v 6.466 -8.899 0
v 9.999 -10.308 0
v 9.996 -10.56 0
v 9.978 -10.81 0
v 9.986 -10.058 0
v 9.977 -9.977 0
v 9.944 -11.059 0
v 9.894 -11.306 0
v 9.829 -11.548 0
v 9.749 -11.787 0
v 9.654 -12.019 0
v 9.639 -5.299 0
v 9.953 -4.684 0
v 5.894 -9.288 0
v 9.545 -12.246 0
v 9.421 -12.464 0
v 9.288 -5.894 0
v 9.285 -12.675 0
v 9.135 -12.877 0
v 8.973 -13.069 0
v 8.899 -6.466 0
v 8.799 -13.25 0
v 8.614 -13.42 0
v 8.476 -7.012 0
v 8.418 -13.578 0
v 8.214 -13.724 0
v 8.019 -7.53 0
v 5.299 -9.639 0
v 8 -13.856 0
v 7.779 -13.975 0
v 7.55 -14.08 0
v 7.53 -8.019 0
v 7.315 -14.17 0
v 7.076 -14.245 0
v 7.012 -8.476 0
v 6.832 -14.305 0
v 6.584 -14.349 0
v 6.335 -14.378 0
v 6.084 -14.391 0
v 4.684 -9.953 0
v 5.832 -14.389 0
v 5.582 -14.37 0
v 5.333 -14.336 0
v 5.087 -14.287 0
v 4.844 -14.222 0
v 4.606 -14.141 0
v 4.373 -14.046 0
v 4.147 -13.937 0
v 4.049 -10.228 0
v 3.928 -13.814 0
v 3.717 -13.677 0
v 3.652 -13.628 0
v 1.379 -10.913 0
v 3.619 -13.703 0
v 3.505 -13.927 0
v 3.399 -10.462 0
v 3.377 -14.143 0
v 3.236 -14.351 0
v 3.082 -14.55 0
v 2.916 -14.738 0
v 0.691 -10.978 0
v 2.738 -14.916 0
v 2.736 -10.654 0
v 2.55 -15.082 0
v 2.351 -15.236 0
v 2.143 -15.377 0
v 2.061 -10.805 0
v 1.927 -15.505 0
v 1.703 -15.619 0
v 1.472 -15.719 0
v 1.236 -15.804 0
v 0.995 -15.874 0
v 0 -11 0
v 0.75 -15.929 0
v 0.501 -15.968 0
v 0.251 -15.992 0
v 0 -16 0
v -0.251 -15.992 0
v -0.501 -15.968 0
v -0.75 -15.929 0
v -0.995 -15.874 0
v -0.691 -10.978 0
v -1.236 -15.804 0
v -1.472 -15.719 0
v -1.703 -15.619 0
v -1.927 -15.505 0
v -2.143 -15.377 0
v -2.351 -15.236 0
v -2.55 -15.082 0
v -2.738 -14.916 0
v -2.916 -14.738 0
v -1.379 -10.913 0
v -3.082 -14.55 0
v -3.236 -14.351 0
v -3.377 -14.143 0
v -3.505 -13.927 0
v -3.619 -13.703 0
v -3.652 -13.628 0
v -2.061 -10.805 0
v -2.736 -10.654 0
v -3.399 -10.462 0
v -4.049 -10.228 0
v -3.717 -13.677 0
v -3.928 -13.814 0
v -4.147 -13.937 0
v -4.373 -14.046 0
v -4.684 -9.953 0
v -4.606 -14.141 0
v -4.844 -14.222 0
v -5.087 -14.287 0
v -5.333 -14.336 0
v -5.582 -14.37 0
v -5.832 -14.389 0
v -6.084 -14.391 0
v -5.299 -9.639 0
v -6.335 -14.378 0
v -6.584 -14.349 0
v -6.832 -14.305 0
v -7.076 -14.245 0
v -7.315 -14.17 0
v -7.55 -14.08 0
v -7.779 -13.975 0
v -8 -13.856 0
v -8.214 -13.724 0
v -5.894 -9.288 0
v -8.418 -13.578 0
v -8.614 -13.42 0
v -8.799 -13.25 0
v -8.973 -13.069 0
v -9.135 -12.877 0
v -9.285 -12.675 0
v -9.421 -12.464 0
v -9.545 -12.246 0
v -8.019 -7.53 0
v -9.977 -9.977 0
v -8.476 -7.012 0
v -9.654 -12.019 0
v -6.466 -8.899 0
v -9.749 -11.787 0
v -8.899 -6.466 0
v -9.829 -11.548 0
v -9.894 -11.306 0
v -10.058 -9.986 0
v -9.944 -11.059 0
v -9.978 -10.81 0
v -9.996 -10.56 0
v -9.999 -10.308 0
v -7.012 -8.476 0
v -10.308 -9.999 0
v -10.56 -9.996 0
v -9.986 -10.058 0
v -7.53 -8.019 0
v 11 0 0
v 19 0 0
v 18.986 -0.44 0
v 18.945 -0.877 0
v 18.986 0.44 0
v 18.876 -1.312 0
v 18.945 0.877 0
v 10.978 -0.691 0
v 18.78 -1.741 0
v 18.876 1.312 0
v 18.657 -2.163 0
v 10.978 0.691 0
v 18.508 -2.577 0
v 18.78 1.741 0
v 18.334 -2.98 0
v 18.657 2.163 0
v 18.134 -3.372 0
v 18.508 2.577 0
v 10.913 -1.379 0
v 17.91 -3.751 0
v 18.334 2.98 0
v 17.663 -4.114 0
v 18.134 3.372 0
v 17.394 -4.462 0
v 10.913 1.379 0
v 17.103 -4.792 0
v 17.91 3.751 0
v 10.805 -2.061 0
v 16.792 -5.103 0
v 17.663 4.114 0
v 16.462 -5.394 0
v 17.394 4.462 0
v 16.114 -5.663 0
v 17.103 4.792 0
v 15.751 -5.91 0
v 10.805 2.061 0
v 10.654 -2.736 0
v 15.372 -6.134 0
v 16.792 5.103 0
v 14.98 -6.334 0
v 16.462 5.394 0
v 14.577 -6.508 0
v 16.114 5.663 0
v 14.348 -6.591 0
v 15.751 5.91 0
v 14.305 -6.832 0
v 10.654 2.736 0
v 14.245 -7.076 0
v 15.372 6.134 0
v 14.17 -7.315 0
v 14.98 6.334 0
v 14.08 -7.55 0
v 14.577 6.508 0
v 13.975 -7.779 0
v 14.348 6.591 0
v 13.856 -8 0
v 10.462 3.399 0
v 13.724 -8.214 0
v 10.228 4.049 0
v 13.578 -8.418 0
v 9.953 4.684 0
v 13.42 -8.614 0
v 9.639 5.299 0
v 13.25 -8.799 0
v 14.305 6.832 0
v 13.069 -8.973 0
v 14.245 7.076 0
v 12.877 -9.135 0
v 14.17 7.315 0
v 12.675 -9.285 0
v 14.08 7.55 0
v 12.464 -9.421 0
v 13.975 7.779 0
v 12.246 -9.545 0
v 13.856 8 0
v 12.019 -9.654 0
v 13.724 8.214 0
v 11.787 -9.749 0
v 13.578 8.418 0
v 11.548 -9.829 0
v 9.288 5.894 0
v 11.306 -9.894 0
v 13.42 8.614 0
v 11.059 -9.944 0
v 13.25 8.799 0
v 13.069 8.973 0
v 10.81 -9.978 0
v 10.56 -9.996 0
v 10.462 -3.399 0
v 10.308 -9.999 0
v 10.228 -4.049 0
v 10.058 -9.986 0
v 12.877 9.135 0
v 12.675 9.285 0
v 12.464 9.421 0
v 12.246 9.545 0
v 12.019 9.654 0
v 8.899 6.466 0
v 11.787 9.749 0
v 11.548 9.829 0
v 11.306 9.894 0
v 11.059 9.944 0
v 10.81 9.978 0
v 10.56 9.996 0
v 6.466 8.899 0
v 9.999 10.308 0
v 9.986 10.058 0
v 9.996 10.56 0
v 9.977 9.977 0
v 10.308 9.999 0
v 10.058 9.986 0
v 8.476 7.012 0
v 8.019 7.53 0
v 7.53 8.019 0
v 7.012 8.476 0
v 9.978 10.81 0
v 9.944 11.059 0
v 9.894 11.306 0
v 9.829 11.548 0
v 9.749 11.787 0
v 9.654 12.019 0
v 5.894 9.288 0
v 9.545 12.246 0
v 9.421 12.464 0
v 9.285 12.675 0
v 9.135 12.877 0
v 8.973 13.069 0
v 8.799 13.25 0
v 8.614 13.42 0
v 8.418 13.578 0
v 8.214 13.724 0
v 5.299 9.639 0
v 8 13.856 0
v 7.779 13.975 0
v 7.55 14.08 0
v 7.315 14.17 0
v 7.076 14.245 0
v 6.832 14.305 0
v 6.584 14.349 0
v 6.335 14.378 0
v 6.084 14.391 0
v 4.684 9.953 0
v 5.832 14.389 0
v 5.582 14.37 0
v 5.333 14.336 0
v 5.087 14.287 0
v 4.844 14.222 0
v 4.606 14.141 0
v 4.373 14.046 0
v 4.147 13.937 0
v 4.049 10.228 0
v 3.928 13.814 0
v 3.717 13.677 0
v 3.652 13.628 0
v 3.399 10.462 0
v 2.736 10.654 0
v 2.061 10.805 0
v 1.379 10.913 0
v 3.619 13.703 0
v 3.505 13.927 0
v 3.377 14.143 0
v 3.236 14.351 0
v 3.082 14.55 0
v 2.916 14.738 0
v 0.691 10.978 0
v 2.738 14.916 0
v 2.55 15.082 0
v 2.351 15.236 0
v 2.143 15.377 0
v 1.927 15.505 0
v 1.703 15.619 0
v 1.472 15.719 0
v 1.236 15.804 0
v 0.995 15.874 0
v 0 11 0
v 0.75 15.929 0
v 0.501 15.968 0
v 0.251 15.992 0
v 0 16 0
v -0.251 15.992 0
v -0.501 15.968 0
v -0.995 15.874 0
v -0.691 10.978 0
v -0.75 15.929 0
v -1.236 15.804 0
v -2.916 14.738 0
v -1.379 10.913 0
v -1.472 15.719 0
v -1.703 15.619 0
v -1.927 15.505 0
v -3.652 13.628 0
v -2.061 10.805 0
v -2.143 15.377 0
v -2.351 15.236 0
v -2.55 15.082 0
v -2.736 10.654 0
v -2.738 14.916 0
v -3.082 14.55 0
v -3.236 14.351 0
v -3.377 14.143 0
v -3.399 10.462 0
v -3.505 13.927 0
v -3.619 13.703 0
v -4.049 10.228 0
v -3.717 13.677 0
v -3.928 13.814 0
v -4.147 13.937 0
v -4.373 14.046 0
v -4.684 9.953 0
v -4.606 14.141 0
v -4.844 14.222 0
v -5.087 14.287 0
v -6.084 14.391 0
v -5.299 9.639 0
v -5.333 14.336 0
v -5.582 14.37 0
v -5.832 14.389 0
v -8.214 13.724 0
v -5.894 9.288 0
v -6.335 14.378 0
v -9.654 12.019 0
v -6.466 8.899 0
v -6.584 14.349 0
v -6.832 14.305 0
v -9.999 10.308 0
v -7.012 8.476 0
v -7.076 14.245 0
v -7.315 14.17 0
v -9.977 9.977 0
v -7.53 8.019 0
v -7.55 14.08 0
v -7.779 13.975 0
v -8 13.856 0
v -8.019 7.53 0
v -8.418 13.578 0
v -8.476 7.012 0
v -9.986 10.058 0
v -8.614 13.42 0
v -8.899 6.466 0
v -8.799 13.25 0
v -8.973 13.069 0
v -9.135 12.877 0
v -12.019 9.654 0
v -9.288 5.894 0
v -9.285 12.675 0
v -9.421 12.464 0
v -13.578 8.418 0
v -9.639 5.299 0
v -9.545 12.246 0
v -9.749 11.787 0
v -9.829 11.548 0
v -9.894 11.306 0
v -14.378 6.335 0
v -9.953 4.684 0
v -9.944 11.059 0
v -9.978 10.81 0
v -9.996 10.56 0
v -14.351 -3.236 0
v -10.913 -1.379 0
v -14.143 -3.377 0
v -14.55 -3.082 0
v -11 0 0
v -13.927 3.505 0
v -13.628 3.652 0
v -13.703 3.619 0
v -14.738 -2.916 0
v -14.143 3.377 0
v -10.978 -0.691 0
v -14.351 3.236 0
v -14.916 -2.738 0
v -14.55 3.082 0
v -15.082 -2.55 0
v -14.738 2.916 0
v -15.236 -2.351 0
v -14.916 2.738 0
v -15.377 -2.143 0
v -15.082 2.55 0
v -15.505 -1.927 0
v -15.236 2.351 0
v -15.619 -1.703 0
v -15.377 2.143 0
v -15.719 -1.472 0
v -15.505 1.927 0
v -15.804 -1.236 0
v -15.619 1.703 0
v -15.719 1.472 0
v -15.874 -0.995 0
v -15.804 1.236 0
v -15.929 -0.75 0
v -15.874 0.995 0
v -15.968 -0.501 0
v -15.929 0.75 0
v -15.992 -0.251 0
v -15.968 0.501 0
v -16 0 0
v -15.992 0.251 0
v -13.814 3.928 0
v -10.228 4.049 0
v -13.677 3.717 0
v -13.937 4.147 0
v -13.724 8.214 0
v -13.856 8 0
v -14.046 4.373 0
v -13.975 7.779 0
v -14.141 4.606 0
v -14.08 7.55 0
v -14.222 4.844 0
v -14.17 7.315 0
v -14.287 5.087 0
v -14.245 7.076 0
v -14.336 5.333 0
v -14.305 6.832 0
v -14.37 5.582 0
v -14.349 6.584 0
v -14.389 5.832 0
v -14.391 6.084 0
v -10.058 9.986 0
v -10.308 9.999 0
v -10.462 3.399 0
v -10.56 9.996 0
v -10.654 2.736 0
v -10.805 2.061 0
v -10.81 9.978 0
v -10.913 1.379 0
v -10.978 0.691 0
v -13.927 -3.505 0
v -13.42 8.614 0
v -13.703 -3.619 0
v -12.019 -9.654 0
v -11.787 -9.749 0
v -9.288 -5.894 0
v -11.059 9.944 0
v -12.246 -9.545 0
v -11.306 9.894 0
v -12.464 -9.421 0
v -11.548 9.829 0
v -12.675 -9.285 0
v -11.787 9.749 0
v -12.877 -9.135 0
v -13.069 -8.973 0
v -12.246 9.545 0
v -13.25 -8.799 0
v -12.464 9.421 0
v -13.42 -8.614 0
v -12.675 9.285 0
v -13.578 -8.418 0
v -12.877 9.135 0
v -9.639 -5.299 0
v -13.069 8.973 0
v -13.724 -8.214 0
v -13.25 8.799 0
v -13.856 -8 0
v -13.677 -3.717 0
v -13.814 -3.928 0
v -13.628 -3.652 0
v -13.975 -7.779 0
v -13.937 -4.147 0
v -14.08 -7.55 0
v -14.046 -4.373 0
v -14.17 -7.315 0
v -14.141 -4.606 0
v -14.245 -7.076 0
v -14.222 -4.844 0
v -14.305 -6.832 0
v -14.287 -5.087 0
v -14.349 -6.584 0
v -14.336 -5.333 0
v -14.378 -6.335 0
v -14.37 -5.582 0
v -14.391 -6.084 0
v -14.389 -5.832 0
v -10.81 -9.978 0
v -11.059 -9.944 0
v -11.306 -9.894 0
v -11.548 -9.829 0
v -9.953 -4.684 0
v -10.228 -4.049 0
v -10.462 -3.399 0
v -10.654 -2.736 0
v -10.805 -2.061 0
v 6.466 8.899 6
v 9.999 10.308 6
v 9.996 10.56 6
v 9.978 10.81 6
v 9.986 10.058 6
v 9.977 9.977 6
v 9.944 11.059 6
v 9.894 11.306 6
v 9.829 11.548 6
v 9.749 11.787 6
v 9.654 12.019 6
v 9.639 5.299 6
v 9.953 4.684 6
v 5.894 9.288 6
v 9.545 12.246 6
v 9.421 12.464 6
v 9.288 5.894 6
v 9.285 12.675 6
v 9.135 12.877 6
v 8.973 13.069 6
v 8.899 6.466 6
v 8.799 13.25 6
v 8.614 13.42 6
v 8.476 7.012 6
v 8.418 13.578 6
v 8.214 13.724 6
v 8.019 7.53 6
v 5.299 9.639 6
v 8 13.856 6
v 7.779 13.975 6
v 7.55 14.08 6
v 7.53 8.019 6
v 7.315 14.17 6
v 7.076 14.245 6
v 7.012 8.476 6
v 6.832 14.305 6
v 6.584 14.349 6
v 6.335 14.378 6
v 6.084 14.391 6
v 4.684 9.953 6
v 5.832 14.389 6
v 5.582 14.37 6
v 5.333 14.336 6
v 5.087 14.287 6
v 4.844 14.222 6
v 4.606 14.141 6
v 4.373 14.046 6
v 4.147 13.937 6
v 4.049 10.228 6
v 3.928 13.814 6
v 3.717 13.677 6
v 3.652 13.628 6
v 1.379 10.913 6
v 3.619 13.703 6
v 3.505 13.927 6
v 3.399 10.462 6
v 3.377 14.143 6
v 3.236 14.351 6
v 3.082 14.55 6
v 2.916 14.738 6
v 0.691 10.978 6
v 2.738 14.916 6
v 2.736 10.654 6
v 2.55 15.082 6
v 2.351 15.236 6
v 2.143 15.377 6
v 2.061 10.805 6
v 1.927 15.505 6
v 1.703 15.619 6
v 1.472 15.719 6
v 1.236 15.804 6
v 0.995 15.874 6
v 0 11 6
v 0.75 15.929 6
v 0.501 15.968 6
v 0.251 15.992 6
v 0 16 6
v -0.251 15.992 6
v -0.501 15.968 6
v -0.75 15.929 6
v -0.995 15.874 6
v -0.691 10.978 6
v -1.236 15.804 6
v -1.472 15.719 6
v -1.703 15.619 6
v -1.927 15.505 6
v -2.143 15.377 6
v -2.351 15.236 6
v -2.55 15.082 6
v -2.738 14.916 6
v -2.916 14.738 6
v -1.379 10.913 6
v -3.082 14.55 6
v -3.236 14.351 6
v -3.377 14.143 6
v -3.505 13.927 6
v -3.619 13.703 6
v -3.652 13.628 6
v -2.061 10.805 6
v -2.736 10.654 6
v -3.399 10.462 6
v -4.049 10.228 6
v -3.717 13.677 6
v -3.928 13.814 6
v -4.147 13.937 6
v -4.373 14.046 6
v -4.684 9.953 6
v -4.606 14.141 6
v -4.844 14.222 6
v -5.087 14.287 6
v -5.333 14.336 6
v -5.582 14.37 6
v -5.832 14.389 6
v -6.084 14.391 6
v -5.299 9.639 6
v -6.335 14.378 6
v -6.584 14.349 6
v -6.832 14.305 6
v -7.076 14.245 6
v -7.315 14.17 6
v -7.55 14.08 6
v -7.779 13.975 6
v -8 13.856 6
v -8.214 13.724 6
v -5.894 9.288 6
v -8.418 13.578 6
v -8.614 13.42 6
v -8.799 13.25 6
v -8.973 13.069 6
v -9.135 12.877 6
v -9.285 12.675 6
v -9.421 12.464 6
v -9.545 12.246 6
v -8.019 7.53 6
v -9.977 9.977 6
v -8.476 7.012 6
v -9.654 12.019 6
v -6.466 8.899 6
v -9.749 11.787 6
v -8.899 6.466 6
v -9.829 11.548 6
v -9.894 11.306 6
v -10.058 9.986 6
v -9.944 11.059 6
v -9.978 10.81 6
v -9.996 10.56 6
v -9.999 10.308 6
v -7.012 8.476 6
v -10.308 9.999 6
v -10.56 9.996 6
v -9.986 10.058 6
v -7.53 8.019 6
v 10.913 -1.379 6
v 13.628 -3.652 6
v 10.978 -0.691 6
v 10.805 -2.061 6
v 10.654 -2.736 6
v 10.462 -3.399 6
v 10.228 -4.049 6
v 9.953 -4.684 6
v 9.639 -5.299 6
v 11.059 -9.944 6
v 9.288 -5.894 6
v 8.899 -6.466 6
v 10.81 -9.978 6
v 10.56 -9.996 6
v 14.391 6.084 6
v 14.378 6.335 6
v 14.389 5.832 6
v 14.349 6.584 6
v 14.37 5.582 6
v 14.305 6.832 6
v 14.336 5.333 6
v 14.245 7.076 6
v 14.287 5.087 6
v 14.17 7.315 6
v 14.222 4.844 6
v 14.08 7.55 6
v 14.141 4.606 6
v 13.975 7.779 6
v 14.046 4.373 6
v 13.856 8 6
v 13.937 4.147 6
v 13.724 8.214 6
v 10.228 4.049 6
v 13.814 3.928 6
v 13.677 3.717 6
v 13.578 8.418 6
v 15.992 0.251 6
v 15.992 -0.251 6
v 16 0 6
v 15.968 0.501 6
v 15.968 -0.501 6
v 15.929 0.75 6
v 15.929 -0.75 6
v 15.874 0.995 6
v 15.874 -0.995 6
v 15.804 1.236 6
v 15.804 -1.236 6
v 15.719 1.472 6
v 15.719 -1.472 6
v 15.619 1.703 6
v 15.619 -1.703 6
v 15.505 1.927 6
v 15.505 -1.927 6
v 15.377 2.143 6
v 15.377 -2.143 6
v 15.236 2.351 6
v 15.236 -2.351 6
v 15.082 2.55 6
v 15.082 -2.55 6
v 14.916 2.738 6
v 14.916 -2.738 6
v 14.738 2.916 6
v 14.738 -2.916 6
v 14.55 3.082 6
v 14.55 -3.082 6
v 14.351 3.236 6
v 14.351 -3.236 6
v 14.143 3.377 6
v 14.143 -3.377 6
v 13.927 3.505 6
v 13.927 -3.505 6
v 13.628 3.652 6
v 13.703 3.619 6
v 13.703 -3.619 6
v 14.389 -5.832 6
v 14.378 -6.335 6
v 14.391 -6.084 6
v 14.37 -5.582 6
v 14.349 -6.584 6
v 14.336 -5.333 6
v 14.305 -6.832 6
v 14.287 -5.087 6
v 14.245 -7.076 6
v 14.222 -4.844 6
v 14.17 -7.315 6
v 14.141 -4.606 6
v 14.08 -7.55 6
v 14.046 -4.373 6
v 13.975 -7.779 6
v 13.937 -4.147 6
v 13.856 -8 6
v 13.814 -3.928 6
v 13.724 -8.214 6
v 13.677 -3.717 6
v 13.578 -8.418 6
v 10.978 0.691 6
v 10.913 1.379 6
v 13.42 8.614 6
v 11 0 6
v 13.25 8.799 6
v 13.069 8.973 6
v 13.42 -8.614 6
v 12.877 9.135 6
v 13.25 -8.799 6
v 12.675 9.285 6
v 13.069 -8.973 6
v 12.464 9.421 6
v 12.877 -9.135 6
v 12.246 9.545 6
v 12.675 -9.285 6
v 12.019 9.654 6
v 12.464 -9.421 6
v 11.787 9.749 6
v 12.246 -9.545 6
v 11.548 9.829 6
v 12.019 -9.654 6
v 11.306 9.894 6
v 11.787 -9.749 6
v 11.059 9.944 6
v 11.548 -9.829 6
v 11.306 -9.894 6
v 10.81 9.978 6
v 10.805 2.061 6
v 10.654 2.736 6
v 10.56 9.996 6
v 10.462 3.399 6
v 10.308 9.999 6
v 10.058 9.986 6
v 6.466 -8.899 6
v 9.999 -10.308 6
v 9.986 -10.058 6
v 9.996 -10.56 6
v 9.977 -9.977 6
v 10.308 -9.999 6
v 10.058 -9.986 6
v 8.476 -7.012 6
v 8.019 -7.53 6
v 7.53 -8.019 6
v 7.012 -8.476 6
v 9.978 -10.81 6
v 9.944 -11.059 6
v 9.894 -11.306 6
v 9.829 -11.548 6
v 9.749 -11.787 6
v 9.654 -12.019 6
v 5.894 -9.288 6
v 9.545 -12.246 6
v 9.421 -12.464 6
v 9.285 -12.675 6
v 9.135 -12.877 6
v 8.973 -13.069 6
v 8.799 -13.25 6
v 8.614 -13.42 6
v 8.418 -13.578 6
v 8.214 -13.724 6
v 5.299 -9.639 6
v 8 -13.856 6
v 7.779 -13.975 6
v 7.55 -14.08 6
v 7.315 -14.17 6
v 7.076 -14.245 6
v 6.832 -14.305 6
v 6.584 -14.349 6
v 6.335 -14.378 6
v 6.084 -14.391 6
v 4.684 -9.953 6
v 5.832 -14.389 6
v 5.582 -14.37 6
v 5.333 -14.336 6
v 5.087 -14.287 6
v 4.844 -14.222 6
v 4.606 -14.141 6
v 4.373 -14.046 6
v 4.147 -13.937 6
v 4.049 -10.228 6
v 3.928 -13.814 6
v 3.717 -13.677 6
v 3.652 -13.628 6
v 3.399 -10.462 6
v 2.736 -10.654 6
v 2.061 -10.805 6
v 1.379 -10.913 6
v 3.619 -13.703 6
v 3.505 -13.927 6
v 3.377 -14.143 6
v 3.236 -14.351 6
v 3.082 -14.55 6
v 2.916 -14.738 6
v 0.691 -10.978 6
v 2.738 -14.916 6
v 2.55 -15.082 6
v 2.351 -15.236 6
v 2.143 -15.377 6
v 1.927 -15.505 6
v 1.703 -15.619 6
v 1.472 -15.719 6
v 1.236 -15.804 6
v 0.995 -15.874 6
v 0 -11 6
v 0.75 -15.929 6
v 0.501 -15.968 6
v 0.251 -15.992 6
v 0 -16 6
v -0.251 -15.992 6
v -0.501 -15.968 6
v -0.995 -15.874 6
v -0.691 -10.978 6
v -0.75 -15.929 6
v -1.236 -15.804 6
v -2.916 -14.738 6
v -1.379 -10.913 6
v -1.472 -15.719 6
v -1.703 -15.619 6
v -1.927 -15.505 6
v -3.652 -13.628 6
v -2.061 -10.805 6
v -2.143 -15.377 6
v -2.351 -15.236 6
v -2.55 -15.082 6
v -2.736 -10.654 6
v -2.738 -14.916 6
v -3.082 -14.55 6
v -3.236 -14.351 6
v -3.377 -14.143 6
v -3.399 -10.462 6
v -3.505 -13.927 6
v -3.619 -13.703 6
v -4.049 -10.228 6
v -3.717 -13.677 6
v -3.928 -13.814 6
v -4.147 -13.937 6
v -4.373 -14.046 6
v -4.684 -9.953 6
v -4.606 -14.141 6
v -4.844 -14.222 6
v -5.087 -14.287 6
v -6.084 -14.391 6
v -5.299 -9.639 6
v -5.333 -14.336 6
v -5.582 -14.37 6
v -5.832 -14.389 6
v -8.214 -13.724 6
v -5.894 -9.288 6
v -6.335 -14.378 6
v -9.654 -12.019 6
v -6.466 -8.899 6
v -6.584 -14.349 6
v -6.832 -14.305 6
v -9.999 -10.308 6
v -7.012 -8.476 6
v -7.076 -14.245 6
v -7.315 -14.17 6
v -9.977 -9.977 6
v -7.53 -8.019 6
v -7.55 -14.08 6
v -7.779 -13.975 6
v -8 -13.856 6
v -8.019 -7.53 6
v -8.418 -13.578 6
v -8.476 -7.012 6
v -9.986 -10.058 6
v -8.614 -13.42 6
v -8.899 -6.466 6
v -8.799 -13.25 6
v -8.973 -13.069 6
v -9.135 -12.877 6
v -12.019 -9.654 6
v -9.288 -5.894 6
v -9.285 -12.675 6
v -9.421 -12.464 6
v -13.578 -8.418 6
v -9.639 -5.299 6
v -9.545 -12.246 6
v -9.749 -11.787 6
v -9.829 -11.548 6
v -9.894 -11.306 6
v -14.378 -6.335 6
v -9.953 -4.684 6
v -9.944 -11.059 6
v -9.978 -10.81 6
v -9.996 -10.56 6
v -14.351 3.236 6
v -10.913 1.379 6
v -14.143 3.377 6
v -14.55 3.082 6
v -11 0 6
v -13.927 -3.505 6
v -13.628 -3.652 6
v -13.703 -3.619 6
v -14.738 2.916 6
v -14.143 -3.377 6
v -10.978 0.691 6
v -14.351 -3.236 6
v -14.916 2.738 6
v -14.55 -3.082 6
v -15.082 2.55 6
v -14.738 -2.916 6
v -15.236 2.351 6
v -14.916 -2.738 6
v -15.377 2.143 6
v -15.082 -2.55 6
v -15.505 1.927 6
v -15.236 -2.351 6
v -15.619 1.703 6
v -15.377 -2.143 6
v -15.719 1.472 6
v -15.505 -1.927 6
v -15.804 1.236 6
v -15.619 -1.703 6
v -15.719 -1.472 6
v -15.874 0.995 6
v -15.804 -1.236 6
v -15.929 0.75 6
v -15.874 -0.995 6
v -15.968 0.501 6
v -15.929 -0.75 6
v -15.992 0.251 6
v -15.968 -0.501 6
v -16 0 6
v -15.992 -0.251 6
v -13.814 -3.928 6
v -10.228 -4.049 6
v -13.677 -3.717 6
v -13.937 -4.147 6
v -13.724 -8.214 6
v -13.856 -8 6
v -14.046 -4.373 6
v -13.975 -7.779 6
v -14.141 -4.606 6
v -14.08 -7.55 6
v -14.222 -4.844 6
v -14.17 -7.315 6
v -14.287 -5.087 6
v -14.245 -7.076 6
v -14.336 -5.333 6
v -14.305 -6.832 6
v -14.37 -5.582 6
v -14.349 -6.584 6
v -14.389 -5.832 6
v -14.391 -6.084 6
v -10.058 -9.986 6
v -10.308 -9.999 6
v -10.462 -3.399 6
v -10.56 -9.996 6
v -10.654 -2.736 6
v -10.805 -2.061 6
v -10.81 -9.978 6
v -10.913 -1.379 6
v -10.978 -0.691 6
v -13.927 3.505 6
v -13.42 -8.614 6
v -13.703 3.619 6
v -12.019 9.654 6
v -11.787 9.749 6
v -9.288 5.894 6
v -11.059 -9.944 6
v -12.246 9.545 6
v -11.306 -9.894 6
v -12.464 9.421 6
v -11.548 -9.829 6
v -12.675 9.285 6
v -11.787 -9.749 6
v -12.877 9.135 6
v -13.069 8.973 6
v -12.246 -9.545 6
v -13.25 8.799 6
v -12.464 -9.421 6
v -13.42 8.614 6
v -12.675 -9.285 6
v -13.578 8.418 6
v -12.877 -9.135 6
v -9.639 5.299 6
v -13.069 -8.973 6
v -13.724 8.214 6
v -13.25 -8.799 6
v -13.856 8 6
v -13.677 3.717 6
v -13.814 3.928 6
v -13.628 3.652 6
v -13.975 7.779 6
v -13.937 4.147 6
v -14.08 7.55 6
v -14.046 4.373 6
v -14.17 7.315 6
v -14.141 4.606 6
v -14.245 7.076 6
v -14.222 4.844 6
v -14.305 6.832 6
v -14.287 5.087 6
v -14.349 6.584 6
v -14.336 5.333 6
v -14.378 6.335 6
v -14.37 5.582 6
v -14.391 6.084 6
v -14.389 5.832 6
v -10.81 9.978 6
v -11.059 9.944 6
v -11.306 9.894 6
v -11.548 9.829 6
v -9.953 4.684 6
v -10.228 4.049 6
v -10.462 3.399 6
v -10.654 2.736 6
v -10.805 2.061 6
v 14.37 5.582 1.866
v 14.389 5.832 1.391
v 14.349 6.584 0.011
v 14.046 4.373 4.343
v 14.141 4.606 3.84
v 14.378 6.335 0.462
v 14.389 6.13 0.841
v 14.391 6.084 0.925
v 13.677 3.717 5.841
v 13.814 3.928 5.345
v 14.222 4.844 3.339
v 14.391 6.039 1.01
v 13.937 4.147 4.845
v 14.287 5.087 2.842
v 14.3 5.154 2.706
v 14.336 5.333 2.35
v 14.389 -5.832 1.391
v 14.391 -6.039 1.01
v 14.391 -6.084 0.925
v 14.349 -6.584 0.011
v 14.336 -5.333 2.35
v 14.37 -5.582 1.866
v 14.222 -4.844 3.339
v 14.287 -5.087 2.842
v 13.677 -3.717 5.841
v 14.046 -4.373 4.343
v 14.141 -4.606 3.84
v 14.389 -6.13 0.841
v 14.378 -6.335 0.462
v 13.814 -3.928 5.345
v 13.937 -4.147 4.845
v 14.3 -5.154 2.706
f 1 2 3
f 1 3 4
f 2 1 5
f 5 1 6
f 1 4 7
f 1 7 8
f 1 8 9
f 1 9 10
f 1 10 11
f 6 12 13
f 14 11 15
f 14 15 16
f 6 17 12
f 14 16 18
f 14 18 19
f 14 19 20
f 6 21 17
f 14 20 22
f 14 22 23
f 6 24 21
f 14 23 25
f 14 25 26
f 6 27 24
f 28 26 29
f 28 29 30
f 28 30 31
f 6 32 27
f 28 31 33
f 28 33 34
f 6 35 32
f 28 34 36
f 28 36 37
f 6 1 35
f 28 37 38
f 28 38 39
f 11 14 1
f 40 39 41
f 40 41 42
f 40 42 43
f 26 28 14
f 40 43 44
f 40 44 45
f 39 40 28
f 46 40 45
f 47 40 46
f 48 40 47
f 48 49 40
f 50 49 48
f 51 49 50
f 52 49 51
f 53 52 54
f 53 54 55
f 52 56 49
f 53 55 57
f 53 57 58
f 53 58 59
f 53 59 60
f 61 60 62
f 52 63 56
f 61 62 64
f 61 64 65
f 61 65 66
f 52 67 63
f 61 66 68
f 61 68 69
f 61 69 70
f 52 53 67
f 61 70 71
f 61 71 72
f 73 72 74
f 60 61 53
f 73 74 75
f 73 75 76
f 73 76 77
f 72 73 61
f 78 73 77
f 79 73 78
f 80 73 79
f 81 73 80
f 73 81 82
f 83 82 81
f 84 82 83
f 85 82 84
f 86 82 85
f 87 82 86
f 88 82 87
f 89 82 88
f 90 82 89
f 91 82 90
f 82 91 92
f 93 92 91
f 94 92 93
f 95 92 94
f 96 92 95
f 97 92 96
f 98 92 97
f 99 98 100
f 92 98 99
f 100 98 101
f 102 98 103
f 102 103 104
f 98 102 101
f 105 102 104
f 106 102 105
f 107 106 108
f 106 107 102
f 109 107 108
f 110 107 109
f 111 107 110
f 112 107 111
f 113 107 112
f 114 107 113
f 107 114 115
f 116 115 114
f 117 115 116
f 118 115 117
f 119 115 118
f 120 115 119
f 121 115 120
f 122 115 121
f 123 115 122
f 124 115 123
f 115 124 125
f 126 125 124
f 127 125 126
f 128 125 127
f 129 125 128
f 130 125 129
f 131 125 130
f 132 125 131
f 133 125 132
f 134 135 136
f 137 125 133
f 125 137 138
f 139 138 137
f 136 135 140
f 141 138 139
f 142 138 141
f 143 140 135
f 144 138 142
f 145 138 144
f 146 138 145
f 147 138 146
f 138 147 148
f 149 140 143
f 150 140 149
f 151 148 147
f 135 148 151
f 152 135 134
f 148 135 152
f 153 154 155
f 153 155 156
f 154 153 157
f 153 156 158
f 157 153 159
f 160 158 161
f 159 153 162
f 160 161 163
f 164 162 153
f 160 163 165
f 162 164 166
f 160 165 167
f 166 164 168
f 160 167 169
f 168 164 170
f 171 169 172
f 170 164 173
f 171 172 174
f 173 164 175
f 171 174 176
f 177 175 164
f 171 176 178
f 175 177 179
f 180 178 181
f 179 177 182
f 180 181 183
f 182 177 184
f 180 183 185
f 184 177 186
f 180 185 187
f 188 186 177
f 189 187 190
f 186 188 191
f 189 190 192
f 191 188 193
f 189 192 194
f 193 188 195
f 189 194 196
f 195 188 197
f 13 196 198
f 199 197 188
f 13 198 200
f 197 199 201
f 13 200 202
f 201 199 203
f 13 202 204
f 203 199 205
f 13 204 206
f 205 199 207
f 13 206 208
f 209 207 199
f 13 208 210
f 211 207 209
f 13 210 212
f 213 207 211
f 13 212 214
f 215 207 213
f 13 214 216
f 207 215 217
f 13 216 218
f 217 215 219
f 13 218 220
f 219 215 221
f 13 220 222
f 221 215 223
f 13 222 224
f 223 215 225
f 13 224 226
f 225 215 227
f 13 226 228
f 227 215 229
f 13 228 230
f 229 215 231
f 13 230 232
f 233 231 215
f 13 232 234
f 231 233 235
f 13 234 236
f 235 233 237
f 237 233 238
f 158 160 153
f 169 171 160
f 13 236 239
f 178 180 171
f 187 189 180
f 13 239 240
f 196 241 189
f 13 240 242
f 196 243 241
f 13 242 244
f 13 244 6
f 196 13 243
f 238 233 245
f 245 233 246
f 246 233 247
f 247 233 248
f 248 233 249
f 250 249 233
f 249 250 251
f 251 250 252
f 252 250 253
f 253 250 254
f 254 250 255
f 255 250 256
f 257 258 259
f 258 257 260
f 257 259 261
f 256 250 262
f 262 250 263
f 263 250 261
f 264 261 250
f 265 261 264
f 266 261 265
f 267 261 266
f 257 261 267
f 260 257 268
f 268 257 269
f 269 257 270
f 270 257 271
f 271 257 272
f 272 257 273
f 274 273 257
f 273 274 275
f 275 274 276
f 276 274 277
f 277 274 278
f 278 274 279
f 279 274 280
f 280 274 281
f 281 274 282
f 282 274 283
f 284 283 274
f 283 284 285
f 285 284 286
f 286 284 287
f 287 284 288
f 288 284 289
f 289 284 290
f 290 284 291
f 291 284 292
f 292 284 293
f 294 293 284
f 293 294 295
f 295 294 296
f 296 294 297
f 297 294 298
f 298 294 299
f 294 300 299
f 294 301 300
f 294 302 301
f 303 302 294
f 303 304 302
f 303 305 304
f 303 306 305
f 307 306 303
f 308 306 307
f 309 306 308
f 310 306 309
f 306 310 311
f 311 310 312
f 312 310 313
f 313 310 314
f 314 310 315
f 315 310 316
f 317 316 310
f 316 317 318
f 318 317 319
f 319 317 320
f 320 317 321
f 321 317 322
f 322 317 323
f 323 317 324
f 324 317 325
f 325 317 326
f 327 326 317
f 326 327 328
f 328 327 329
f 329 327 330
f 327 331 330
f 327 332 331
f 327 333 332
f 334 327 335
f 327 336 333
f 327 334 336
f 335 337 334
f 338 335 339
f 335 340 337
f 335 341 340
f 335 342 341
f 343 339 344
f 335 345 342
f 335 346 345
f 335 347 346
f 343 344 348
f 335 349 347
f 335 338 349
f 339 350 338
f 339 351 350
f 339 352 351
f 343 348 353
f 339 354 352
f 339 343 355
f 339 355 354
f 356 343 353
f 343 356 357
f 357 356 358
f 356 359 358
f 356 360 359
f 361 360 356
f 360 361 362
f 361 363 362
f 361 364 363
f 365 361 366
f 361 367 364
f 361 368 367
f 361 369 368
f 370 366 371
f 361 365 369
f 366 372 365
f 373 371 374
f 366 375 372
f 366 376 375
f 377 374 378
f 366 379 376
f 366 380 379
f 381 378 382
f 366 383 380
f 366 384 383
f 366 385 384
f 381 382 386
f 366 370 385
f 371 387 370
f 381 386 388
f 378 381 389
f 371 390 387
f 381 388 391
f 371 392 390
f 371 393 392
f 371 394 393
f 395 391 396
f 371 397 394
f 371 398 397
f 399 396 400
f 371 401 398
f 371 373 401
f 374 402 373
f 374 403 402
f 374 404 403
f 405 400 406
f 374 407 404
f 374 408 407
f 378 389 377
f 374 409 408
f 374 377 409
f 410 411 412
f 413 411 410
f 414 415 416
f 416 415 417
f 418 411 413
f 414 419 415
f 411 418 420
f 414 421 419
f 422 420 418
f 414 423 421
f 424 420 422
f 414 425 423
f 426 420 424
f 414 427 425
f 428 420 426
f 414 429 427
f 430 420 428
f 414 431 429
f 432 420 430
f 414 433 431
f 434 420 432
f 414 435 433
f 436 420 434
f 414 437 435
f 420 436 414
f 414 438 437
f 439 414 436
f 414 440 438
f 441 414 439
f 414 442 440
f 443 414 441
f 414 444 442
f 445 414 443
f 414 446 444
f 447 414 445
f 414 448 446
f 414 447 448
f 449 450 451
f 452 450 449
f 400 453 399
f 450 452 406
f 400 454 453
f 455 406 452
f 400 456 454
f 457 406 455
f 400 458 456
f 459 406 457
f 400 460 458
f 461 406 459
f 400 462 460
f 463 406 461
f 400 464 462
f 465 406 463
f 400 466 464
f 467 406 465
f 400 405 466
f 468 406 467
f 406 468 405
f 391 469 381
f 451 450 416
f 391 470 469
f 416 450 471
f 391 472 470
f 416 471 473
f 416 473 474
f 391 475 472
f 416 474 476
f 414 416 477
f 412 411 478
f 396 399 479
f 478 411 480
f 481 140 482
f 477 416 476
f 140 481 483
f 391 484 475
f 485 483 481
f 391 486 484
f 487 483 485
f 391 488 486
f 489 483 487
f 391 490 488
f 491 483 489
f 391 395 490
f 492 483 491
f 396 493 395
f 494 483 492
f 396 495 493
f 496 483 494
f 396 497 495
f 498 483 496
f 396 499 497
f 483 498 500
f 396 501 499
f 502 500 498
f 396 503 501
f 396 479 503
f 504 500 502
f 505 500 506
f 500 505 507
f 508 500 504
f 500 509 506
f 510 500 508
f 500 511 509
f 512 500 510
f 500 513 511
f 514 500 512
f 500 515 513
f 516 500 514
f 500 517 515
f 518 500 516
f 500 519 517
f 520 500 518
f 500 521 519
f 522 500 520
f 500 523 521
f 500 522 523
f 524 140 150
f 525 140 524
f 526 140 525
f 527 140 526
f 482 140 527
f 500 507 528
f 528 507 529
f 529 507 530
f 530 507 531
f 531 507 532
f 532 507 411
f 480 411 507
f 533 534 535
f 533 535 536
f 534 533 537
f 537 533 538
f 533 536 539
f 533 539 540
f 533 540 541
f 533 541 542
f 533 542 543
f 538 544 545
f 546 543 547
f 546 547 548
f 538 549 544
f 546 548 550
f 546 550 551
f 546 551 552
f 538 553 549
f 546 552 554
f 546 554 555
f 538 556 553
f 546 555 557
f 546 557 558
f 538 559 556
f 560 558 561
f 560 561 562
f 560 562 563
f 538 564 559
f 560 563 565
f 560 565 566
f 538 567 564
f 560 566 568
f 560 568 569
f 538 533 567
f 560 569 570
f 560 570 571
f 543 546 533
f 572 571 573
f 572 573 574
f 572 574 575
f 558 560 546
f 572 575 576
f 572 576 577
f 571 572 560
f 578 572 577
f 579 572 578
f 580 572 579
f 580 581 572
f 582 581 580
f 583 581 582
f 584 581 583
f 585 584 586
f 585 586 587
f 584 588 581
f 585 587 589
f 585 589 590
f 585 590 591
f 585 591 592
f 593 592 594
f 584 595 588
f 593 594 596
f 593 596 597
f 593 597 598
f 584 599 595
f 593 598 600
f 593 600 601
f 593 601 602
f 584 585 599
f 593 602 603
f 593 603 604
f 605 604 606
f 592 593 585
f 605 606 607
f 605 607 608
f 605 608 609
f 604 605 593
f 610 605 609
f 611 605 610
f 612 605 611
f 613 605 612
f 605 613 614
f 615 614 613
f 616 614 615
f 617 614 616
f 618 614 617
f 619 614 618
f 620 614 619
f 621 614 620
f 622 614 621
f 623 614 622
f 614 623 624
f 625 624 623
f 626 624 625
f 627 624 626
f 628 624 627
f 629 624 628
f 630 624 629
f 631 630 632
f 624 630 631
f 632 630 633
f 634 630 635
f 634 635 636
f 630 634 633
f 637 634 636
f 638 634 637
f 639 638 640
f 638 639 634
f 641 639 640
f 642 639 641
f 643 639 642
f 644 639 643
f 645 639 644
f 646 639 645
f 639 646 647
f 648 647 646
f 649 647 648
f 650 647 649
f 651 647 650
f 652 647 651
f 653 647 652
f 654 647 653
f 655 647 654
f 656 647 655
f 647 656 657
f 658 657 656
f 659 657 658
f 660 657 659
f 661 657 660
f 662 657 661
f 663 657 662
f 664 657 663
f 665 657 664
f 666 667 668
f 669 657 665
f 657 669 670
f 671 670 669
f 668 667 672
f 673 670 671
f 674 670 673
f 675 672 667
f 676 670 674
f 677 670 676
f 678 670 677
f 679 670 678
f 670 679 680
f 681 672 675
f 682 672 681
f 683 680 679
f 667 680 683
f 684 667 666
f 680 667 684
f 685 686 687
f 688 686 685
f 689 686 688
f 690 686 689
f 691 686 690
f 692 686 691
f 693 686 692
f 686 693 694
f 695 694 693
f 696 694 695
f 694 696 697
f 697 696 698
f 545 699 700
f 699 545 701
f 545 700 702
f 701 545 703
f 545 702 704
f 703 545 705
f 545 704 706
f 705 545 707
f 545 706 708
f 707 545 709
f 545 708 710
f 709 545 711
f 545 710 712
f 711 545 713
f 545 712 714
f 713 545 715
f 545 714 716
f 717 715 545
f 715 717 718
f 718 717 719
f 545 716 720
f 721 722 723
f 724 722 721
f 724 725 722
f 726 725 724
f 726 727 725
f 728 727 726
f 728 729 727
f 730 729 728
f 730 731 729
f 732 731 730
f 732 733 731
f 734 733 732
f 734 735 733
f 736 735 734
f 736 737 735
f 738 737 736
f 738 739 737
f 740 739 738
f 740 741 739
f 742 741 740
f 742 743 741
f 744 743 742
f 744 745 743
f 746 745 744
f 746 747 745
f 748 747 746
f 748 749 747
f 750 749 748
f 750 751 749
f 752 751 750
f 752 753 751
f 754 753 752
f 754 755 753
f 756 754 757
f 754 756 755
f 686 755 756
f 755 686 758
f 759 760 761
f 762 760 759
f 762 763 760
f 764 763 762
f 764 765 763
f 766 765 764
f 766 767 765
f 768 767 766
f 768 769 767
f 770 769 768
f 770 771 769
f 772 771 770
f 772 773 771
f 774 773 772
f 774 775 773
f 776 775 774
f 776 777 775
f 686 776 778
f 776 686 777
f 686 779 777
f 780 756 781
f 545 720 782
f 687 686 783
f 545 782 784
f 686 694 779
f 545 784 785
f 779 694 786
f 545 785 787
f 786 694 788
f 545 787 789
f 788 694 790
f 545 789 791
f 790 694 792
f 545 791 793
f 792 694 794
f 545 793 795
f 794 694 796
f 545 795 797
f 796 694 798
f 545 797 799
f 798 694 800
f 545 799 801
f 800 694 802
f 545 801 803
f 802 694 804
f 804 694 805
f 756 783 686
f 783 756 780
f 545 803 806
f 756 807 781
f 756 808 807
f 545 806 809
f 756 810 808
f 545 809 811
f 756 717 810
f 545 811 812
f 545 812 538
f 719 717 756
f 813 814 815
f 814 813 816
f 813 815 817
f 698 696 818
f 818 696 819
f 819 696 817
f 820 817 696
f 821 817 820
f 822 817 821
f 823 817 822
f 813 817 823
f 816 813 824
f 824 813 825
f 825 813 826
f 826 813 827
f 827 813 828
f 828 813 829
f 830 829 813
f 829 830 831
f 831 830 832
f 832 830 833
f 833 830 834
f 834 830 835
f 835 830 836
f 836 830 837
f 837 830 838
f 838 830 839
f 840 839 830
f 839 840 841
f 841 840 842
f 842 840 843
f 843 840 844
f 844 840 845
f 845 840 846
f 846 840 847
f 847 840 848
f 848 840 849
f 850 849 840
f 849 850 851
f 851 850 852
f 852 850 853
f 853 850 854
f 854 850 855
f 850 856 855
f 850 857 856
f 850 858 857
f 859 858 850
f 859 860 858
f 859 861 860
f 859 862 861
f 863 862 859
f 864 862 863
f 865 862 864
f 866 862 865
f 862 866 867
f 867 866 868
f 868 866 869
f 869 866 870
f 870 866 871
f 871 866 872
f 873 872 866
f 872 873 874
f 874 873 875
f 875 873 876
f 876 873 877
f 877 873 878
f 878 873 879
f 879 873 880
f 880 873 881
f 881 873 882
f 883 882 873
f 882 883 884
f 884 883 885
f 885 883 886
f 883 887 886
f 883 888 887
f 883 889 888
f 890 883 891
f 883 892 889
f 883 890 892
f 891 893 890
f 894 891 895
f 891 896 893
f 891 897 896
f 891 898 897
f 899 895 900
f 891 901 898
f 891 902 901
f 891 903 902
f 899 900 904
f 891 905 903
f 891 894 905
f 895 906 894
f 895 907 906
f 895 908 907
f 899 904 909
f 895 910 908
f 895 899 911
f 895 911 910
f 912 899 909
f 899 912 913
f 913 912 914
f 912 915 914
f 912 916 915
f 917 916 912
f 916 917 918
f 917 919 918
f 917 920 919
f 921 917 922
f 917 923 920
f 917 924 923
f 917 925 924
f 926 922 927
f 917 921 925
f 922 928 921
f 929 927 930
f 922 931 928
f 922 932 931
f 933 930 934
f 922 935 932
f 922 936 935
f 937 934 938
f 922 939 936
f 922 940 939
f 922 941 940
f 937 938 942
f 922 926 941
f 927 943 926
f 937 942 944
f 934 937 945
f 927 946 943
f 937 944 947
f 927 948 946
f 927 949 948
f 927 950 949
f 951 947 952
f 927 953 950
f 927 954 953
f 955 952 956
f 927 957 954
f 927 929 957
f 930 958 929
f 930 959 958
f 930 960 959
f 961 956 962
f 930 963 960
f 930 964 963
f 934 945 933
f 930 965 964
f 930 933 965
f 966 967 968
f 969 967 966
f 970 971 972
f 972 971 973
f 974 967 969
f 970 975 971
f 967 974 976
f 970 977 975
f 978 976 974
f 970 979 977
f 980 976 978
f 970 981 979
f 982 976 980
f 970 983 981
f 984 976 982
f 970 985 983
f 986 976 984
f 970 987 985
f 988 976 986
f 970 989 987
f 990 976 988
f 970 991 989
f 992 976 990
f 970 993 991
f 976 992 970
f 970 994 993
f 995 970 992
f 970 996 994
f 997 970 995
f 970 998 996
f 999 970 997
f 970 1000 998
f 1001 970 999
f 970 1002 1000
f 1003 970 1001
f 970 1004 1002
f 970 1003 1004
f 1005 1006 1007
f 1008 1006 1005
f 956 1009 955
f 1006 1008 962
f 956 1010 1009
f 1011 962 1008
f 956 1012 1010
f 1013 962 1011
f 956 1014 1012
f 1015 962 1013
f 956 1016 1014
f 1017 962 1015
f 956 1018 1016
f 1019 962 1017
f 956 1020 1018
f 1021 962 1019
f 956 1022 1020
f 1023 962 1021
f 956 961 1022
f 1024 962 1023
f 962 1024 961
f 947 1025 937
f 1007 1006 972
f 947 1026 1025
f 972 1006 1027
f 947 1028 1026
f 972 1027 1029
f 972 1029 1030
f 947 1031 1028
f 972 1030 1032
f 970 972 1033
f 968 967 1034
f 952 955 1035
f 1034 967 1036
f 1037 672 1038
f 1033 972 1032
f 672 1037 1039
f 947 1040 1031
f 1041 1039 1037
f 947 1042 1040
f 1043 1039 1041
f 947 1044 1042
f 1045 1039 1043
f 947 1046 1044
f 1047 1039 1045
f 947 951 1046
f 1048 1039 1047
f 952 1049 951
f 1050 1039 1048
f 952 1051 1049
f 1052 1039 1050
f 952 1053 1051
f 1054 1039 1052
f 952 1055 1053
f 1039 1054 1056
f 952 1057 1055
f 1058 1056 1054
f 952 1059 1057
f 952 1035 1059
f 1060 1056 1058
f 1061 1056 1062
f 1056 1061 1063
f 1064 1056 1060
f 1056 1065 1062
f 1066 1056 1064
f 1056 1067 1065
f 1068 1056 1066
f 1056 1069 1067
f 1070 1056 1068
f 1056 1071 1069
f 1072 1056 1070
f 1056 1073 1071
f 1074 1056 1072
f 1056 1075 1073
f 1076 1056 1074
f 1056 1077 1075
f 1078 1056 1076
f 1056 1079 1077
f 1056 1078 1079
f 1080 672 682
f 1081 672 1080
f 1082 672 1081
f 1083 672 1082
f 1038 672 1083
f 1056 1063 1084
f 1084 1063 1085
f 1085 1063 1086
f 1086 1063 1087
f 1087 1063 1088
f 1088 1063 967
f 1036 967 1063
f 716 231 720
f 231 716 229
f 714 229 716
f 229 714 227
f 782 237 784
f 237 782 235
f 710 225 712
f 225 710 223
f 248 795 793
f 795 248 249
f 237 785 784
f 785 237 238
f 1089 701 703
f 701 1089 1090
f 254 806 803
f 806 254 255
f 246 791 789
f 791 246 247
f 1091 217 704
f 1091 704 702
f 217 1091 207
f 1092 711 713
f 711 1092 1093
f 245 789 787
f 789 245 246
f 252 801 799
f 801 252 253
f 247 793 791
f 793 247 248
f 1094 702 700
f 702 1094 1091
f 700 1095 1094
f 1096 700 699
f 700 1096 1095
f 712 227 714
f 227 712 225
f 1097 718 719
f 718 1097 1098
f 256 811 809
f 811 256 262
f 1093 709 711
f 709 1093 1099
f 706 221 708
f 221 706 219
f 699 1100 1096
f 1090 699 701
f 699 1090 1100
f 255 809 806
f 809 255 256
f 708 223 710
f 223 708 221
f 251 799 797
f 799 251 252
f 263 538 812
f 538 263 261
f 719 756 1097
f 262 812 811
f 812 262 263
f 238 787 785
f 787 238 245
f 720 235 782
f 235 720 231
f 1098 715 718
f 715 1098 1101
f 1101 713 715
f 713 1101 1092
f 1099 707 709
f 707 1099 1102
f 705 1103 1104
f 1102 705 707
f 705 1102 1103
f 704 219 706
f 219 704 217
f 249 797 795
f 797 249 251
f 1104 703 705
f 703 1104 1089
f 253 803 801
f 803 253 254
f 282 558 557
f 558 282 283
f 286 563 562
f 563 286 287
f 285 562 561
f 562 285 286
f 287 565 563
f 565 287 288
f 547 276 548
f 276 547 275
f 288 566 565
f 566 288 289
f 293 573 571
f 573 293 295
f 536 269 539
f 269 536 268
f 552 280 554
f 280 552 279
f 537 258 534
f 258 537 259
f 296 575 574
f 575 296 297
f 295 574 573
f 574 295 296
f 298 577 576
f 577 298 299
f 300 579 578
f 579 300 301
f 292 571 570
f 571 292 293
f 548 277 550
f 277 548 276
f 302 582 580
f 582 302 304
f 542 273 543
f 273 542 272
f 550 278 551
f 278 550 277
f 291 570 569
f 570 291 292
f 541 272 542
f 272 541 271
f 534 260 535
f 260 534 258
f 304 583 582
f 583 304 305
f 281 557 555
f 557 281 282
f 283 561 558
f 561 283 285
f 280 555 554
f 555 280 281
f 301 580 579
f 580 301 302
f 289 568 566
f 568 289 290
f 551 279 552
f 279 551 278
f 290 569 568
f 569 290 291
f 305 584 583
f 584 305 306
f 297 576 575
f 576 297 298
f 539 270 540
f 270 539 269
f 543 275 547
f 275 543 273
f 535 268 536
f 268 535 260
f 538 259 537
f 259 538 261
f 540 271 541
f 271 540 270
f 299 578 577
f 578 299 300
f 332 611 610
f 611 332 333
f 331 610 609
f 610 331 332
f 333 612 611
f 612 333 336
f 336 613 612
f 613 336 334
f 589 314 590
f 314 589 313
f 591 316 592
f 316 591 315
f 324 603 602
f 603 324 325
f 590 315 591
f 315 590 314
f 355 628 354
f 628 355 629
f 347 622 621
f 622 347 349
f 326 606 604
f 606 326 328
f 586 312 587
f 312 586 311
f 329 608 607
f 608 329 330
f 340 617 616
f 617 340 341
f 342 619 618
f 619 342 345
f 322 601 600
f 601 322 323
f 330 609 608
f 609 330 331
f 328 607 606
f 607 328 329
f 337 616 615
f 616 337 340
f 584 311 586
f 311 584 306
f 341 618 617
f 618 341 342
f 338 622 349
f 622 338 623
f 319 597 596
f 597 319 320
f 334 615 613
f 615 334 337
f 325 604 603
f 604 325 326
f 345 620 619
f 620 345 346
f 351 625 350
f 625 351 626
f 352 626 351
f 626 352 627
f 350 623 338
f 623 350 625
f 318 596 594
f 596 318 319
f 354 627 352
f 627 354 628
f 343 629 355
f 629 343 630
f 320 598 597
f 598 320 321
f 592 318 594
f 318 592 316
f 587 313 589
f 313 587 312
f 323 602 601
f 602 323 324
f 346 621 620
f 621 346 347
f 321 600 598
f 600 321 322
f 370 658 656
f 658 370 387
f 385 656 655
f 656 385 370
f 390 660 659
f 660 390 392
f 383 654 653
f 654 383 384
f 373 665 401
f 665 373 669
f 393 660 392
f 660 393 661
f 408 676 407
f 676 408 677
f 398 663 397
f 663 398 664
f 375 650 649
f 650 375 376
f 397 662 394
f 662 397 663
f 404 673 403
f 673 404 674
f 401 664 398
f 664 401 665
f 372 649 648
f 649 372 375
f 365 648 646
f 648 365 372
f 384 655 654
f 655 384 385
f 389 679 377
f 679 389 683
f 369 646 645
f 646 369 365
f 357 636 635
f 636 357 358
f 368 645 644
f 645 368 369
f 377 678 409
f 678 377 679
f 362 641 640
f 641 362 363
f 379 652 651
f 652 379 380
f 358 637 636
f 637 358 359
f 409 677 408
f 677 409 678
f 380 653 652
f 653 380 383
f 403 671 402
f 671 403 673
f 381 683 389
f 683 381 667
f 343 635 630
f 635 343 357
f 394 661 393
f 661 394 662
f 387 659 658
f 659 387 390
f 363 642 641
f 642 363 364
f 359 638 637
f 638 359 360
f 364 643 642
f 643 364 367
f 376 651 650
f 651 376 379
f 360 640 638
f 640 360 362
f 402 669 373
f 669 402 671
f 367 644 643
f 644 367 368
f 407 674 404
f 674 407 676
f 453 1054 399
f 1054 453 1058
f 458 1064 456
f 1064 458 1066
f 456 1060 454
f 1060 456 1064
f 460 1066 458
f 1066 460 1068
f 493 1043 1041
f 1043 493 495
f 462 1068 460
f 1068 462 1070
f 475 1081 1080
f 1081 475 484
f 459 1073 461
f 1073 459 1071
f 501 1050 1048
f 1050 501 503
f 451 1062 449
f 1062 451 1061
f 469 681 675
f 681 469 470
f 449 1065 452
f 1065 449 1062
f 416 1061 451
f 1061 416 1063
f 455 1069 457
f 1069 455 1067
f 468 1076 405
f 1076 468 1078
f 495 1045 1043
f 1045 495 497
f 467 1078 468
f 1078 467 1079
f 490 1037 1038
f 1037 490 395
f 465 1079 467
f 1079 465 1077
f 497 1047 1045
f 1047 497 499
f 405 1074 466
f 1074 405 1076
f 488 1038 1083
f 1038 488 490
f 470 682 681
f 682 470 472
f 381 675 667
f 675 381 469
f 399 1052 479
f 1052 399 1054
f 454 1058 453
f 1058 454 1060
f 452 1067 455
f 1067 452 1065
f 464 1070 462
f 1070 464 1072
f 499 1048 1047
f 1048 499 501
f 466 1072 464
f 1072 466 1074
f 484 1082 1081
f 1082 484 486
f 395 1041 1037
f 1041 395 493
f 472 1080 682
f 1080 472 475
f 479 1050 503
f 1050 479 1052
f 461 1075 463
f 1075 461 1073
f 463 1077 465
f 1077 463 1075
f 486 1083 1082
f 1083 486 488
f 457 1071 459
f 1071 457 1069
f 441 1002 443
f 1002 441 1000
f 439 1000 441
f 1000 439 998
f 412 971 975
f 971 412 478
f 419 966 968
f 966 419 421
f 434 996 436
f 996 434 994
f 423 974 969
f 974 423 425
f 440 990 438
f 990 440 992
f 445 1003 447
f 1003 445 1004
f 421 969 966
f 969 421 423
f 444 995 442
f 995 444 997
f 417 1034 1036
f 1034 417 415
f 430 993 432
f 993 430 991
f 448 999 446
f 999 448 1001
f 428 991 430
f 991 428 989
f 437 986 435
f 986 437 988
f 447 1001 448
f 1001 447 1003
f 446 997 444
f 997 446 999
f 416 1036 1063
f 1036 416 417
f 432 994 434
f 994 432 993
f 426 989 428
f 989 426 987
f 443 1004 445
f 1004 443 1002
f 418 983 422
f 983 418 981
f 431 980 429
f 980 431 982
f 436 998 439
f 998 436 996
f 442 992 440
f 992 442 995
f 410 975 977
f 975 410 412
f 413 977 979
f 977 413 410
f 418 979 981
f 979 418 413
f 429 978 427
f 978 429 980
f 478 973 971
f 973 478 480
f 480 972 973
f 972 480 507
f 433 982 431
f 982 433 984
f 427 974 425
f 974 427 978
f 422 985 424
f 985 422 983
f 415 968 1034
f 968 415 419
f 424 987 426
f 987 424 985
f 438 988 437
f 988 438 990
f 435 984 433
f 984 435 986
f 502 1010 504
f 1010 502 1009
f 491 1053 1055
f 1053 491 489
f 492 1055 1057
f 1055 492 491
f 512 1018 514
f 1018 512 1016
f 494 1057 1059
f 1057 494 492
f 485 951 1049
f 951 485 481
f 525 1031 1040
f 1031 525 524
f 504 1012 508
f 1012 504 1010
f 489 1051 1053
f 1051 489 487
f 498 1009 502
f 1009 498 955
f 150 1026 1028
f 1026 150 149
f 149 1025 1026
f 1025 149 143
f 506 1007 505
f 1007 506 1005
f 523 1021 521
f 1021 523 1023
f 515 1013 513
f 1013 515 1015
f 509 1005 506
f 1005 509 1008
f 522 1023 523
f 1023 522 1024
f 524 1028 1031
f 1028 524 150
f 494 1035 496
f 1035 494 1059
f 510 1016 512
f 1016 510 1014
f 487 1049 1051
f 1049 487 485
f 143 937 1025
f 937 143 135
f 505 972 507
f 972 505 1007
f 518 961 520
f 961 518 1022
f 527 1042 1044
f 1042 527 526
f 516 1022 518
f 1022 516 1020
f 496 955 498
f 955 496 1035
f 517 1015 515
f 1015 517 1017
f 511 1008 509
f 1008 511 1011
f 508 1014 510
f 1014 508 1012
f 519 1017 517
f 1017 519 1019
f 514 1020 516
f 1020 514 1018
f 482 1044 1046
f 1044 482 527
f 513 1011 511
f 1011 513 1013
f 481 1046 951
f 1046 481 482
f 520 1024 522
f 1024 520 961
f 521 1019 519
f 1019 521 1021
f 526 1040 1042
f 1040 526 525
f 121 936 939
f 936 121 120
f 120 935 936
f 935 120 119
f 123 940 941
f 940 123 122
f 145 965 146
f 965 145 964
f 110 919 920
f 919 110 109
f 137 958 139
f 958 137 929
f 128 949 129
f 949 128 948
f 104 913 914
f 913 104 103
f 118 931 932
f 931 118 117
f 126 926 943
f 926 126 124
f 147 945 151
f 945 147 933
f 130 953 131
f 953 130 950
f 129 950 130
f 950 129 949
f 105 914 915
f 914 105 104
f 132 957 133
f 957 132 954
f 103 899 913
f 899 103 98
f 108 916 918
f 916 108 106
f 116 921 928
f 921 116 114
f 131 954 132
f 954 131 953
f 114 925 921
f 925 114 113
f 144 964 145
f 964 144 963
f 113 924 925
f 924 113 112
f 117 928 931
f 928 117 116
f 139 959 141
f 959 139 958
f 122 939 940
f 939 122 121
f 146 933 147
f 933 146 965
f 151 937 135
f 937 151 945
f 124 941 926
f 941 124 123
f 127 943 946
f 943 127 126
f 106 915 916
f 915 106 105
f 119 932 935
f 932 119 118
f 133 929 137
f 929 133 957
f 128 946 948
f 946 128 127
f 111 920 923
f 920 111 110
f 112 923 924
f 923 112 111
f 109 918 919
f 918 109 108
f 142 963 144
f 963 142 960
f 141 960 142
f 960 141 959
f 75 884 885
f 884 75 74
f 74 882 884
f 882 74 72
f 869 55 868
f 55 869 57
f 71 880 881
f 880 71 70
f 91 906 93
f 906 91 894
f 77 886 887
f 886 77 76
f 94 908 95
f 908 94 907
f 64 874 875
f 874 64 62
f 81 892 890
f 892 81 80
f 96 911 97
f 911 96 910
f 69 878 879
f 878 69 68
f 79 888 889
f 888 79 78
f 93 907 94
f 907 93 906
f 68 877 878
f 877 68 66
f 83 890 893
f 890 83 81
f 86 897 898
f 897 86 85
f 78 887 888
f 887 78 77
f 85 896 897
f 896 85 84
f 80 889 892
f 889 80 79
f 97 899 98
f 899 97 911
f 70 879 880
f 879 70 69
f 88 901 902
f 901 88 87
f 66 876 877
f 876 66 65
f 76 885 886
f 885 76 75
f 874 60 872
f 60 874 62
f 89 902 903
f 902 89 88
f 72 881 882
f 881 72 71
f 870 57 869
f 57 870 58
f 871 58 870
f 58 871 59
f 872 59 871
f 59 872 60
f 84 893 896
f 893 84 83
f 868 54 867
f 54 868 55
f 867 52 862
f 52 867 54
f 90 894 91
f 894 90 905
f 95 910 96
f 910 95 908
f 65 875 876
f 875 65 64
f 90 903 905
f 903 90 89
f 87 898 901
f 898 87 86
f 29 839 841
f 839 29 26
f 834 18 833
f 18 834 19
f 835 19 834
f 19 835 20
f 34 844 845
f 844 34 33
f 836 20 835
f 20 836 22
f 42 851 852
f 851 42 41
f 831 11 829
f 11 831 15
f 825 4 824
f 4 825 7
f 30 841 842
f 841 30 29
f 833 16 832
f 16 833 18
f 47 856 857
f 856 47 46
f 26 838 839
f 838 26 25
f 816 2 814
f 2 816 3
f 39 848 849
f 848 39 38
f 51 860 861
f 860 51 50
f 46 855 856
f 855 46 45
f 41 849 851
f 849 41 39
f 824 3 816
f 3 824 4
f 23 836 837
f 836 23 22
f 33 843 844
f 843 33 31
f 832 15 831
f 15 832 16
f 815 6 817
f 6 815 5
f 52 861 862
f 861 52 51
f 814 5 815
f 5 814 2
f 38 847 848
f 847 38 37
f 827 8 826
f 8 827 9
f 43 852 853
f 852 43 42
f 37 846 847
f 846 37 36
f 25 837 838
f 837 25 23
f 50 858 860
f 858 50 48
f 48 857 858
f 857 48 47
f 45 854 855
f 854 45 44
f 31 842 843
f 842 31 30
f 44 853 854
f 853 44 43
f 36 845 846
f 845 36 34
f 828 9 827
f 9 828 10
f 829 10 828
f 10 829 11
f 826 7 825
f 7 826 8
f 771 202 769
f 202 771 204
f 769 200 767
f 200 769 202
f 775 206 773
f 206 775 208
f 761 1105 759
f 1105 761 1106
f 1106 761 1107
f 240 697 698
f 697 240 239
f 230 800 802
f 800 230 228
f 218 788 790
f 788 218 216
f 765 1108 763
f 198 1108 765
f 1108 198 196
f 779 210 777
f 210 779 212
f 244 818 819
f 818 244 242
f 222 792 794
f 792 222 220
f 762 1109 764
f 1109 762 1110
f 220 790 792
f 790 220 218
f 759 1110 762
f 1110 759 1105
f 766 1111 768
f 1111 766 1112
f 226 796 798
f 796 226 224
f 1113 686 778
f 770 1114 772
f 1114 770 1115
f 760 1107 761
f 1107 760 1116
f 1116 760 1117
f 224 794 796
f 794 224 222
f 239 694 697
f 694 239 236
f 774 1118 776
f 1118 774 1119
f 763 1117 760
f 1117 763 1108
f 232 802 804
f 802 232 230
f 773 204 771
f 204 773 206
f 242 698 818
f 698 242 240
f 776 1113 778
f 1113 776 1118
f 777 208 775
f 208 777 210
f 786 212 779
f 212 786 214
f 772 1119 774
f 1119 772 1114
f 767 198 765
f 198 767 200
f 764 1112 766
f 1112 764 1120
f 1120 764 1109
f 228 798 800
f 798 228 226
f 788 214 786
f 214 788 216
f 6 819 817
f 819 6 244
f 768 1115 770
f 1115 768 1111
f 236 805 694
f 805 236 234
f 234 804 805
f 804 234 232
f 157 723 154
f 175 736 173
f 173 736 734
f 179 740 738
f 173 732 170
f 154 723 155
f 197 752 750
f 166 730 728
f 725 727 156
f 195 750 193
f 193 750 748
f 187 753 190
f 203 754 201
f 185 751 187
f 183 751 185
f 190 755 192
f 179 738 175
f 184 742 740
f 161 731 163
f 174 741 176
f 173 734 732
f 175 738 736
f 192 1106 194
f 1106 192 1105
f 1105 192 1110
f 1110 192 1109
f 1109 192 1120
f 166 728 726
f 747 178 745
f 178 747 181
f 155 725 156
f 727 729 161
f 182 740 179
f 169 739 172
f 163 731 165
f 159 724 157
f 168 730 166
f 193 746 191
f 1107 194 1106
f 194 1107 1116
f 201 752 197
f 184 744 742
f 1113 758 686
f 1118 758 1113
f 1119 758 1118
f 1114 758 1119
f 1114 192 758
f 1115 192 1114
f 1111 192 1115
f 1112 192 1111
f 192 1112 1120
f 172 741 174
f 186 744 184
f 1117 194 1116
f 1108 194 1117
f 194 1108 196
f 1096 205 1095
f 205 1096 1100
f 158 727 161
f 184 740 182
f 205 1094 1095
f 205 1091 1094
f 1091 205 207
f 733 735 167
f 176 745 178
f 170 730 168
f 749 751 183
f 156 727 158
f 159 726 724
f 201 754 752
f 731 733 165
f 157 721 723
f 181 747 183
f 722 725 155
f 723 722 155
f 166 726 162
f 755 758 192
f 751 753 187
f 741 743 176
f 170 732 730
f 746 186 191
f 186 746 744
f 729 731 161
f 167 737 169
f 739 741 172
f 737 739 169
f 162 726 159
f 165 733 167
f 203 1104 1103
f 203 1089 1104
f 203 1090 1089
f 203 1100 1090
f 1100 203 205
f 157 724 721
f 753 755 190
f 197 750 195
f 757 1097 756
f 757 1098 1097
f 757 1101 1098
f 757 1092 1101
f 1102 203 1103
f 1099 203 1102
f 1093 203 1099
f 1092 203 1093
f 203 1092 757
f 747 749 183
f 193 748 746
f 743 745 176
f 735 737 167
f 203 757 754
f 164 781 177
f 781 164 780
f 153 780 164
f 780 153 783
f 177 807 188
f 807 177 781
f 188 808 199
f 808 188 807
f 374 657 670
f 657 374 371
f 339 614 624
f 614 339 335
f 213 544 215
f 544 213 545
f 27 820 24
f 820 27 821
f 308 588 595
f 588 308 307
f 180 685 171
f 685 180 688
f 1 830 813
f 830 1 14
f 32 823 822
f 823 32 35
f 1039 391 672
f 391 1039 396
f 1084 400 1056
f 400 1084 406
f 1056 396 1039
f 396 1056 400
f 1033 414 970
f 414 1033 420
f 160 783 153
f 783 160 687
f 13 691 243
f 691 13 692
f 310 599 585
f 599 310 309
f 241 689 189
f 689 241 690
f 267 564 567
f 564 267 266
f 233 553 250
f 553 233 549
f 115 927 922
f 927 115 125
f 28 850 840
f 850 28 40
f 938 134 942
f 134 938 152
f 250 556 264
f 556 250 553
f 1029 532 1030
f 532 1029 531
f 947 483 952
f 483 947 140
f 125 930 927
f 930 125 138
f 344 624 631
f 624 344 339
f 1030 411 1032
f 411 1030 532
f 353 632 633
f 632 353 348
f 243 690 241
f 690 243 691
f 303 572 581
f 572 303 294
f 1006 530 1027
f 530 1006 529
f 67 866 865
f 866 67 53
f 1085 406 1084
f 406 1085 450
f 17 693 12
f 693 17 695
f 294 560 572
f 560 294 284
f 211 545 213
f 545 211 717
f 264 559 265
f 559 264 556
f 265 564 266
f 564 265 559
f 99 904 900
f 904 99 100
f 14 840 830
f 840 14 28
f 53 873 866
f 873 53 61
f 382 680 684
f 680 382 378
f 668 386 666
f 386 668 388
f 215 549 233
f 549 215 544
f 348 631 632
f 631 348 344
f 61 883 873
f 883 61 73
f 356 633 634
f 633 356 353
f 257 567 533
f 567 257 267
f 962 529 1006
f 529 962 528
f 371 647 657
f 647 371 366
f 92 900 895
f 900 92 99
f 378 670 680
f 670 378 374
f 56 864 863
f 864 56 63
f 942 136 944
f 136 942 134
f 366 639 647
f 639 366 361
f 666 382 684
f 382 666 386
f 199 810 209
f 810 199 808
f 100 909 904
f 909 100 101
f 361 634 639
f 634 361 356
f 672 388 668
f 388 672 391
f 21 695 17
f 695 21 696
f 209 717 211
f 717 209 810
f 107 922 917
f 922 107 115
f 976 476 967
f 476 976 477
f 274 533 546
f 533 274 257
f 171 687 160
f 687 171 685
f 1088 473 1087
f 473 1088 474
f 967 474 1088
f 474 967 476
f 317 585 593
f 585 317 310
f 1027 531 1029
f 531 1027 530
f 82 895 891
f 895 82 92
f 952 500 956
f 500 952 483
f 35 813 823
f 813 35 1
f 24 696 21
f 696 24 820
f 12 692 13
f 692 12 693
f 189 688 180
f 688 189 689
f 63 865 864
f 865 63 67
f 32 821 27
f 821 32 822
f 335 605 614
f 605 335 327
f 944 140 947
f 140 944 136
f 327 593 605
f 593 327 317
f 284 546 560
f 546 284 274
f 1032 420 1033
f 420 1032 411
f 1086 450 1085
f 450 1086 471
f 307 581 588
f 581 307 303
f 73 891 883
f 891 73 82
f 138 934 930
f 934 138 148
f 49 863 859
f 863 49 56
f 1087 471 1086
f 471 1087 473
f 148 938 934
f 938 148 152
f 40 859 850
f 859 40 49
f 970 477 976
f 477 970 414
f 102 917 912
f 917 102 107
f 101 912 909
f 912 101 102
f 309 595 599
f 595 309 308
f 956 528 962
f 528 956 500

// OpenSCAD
$fn=100;
difference() {
union() {
    cylinder(6, 12, 12);
for (i =[0:12]) {
    rotate([0, 0, 30 * i]) {
        translate([12, 0, 0]) {
            cylinder(6, 4, 4);
        }
    }
}
       translate([12, 0, 0]) {
            cylinder(6, 7, 4);
        }
    }
translate([0, 0, -2]) {
cylinder(10, 11, 11);
}
}
